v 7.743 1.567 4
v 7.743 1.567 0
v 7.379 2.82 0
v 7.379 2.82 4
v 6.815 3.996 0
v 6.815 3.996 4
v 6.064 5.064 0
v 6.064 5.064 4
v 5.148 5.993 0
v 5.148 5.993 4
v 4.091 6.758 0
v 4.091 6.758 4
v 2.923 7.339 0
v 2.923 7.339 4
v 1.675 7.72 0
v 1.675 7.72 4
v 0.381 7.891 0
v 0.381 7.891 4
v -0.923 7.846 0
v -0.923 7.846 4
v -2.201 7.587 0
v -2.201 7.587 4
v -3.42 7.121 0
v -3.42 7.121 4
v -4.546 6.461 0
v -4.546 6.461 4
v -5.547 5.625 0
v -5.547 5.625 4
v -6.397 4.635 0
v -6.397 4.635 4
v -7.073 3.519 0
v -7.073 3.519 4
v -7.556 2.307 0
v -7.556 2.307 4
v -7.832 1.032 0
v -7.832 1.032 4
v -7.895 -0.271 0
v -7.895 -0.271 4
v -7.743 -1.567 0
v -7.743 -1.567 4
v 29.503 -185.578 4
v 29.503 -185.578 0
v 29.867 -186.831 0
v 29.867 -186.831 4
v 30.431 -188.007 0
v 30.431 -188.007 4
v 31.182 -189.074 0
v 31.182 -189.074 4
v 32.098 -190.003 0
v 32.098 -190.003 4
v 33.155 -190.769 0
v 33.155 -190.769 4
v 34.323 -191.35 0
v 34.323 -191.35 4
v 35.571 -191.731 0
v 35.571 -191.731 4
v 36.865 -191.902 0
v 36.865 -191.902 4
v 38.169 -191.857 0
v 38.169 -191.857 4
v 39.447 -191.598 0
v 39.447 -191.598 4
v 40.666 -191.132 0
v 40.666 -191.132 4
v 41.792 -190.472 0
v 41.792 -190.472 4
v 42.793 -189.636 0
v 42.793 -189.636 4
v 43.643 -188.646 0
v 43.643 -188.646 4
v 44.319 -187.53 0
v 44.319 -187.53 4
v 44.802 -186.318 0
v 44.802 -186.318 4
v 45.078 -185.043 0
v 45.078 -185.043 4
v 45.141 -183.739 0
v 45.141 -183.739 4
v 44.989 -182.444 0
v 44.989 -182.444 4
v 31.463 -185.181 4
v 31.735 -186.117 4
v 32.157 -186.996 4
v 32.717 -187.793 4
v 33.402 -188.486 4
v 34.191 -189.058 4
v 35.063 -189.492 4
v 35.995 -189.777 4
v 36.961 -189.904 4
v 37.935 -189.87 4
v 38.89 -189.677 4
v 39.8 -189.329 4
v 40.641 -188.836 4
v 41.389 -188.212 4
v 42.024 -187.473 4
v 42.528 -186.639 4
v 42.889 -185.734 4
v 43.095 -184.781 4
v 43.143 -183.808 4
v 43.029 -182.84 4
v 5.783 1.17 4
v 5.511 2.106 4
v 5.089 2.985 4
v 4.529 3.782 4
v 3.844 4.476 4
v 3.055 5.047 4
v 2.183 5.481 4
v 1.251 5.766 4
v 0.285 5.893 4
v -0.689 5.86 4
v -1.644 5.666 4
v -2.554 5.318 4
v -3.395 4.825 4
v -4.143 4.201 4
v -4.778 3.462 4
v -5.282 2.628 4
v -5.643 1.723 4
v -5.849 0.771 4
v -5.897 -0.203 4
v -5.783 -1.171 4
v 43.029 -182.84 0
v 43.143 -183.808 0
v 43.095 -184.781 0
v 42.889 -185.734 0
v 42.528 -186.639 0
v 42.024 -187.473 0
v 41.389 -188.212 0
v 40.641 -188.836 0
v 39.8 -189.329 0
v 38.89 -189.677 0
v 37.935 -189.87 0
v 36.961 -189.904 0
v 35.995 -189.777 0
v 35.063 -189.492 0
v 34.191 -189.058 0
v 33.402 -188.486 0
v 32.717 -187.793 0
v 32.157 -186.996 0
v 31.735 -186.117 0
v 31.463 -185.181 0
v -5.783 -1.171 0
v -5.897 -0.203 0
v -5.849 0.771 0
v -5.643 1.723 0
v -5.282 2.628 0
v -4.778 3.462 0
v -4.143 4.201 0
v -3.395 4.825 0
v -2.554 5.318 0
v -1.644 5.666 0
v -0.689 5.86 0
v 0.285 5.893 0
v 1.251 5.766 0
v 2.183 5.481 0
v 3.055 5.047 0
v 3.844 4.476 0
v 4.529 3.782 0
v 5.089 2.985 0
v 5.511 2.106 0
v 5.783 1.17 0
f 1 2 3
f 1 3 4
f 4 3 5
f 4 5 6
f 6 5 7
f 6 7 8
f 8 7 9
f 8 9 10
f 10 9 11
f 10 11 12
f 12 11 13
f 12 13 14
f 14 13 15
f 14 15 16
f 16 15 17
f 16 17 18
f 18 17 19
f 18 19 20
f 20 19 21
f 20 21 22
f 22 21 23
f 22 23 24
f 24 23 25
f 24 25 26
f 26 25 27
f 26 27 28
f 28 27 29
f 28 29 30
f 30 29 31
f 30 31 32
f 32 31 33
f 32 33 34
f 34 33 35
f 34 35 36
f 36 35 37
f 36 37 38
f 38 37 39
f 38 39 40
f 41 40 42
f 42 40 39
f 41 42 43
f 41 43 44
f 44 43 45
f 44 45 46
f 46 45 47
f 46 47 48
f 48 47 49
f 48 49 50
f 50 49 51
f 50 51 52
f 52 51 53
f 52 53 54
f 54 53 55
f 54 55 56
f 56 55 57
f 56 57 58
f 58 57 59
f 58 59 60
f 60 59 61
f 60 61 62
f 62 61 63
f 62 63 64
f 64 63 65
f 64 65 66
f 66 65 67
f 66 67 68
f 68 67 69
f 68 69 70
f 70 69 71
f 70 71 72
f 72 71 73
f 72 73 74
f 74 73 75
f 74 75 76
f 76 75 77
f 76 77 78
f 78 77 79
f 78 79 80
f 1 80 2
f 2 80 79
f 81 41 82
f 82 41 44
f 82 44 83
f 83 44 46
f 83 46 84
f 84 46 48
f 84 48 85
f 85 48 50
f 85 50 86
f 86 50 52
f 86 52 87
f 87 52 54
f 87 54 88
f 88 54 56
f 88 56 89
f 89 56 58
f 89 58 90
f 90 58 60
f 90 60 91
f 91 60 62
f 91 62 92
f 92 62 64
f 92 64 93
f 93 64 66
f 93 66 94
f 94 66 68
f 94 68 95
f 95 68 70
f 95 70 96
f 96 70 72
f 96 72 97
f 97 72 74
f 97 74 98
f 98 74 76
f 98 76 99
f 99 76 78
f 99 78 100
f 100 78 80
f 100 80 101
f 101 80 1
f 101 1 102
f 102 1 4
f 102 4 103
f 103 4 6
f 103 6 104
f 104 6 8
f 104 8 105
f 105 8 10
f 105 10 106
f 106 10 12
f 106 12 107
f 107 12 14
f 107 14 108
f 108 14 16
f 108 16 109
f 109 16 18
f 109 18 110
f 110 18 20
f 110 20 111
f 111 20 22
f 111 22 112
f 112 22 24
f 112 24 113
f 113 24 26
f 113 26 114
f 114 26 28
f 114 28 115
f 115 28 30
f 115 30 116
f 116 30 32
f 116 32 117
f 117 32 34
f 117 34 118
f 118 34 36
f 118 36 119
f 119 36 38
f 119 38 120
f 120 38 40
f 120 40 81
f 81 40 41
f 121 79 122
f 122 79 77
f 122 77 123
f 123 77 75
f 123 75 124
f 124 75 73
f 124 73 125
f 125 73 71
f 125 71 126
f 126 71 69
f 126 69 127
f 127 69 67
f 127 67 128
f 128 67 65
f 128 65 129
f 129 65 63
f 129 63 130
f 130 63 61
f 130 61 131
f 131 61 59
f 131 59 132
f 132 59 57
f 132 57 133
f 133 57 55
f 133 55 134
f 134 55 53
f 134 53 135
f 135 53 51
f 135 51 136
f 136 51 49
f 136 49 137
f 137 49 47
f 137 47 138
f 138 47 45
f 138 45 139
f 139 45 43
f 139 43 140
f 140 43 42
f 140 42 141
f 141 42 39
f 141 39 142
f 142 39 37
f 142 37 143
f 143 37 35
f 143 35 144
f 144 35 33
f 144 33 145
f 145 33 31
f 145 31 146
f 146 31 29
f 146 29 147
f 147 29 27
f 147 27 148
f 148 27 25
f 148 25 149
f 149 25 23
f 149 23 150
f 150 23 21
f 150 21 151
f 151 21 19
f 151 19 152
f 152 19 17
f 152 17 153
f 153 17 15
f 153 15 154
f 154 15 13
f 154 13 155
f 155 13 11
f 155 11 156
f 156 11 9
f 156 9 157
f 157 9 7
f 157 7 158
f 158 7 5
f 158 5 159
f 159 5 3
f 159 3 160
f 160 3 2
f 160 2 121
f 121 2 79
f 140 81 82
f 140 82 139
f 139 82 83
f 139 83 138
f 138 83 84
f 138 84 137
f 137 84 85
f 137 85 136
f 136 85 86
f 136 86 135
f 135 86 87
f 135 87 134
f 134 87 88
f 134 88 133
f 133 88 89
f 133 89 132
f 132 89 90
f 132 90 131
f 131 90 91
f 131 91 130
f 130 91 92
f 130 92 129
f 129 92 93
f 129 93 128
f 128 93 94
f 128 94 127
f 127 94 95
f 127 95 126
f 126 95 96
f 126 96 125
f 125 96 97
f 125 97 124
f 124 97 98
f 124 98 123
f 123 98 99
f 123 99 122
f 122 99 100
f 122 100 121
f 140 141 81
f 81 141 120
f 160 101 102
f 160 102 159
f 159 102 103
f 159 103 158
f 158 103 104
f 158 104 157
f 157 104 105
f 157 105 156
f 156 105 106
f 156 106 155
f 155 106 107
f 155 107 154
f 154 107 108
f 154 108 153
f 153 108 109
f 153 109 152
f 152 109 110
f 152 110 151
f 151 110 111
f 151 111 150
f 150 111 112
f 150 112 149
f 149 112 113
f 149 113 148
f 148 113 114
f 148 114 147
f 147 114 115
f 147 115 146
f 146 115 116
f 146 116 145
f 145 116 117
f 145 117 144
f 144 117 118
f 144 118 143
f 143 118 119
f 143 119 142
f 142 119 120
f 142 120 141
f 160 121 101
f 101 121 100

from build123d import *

# Parameters (mm, degrees)
BOSS_EXTRUDE1_DEPTH = 4
CUT_EXTRUDE1_DEPTH  = 4


with BuildPart() as part:
    # Sketch3 → Boss-Extrude1 (new body)
    with BuildSketch(Plane.XY):
        with BuildLine():
            Line((44.988998007, -182.443553074), (7.742974777, 1.567272025))
            ThreePointArc((7.742974777, 1.567272025), (-1.567272025, 7.742974777), (-7.742974777, -1.567272025))
            Line((-7.742974777, -1.567272025), (29.503048453, -185.578097123))
            ThreePointArc((29.503048453, -185.578097123), (38.813295255, -191.753799876), (44.988998007, -182.443553074))
        make_face()
    extrude(amount=BOSS_EXTRUDE1_DEPTH)

    # Sketch4 → Cut-Extrude1 (cut)
    with BuildSketch(Plane.XY.offset(4)):
        with BuildLine():
            Line((43.028751228, -182.840330802), (5.782727998, 1.170494297))
            ThreePointArc((5.782727998, 1.170494297), (-1.170494297, 5.782727998), (-5.782727998, -1.170494297))
            Line((-5.782727998, -1.170494297), (31.463295232, -185.181319396))
            ThreePointArc((31.463295232, -185.181319396), (38.416517527, -189.793553097), (43.028751228, -182.840330802))
        make_face()
    extrude(amount=-CUT_EXTRUDE1_DEPTH, mode=Mode.SUBTRACT)


solid = part.part
